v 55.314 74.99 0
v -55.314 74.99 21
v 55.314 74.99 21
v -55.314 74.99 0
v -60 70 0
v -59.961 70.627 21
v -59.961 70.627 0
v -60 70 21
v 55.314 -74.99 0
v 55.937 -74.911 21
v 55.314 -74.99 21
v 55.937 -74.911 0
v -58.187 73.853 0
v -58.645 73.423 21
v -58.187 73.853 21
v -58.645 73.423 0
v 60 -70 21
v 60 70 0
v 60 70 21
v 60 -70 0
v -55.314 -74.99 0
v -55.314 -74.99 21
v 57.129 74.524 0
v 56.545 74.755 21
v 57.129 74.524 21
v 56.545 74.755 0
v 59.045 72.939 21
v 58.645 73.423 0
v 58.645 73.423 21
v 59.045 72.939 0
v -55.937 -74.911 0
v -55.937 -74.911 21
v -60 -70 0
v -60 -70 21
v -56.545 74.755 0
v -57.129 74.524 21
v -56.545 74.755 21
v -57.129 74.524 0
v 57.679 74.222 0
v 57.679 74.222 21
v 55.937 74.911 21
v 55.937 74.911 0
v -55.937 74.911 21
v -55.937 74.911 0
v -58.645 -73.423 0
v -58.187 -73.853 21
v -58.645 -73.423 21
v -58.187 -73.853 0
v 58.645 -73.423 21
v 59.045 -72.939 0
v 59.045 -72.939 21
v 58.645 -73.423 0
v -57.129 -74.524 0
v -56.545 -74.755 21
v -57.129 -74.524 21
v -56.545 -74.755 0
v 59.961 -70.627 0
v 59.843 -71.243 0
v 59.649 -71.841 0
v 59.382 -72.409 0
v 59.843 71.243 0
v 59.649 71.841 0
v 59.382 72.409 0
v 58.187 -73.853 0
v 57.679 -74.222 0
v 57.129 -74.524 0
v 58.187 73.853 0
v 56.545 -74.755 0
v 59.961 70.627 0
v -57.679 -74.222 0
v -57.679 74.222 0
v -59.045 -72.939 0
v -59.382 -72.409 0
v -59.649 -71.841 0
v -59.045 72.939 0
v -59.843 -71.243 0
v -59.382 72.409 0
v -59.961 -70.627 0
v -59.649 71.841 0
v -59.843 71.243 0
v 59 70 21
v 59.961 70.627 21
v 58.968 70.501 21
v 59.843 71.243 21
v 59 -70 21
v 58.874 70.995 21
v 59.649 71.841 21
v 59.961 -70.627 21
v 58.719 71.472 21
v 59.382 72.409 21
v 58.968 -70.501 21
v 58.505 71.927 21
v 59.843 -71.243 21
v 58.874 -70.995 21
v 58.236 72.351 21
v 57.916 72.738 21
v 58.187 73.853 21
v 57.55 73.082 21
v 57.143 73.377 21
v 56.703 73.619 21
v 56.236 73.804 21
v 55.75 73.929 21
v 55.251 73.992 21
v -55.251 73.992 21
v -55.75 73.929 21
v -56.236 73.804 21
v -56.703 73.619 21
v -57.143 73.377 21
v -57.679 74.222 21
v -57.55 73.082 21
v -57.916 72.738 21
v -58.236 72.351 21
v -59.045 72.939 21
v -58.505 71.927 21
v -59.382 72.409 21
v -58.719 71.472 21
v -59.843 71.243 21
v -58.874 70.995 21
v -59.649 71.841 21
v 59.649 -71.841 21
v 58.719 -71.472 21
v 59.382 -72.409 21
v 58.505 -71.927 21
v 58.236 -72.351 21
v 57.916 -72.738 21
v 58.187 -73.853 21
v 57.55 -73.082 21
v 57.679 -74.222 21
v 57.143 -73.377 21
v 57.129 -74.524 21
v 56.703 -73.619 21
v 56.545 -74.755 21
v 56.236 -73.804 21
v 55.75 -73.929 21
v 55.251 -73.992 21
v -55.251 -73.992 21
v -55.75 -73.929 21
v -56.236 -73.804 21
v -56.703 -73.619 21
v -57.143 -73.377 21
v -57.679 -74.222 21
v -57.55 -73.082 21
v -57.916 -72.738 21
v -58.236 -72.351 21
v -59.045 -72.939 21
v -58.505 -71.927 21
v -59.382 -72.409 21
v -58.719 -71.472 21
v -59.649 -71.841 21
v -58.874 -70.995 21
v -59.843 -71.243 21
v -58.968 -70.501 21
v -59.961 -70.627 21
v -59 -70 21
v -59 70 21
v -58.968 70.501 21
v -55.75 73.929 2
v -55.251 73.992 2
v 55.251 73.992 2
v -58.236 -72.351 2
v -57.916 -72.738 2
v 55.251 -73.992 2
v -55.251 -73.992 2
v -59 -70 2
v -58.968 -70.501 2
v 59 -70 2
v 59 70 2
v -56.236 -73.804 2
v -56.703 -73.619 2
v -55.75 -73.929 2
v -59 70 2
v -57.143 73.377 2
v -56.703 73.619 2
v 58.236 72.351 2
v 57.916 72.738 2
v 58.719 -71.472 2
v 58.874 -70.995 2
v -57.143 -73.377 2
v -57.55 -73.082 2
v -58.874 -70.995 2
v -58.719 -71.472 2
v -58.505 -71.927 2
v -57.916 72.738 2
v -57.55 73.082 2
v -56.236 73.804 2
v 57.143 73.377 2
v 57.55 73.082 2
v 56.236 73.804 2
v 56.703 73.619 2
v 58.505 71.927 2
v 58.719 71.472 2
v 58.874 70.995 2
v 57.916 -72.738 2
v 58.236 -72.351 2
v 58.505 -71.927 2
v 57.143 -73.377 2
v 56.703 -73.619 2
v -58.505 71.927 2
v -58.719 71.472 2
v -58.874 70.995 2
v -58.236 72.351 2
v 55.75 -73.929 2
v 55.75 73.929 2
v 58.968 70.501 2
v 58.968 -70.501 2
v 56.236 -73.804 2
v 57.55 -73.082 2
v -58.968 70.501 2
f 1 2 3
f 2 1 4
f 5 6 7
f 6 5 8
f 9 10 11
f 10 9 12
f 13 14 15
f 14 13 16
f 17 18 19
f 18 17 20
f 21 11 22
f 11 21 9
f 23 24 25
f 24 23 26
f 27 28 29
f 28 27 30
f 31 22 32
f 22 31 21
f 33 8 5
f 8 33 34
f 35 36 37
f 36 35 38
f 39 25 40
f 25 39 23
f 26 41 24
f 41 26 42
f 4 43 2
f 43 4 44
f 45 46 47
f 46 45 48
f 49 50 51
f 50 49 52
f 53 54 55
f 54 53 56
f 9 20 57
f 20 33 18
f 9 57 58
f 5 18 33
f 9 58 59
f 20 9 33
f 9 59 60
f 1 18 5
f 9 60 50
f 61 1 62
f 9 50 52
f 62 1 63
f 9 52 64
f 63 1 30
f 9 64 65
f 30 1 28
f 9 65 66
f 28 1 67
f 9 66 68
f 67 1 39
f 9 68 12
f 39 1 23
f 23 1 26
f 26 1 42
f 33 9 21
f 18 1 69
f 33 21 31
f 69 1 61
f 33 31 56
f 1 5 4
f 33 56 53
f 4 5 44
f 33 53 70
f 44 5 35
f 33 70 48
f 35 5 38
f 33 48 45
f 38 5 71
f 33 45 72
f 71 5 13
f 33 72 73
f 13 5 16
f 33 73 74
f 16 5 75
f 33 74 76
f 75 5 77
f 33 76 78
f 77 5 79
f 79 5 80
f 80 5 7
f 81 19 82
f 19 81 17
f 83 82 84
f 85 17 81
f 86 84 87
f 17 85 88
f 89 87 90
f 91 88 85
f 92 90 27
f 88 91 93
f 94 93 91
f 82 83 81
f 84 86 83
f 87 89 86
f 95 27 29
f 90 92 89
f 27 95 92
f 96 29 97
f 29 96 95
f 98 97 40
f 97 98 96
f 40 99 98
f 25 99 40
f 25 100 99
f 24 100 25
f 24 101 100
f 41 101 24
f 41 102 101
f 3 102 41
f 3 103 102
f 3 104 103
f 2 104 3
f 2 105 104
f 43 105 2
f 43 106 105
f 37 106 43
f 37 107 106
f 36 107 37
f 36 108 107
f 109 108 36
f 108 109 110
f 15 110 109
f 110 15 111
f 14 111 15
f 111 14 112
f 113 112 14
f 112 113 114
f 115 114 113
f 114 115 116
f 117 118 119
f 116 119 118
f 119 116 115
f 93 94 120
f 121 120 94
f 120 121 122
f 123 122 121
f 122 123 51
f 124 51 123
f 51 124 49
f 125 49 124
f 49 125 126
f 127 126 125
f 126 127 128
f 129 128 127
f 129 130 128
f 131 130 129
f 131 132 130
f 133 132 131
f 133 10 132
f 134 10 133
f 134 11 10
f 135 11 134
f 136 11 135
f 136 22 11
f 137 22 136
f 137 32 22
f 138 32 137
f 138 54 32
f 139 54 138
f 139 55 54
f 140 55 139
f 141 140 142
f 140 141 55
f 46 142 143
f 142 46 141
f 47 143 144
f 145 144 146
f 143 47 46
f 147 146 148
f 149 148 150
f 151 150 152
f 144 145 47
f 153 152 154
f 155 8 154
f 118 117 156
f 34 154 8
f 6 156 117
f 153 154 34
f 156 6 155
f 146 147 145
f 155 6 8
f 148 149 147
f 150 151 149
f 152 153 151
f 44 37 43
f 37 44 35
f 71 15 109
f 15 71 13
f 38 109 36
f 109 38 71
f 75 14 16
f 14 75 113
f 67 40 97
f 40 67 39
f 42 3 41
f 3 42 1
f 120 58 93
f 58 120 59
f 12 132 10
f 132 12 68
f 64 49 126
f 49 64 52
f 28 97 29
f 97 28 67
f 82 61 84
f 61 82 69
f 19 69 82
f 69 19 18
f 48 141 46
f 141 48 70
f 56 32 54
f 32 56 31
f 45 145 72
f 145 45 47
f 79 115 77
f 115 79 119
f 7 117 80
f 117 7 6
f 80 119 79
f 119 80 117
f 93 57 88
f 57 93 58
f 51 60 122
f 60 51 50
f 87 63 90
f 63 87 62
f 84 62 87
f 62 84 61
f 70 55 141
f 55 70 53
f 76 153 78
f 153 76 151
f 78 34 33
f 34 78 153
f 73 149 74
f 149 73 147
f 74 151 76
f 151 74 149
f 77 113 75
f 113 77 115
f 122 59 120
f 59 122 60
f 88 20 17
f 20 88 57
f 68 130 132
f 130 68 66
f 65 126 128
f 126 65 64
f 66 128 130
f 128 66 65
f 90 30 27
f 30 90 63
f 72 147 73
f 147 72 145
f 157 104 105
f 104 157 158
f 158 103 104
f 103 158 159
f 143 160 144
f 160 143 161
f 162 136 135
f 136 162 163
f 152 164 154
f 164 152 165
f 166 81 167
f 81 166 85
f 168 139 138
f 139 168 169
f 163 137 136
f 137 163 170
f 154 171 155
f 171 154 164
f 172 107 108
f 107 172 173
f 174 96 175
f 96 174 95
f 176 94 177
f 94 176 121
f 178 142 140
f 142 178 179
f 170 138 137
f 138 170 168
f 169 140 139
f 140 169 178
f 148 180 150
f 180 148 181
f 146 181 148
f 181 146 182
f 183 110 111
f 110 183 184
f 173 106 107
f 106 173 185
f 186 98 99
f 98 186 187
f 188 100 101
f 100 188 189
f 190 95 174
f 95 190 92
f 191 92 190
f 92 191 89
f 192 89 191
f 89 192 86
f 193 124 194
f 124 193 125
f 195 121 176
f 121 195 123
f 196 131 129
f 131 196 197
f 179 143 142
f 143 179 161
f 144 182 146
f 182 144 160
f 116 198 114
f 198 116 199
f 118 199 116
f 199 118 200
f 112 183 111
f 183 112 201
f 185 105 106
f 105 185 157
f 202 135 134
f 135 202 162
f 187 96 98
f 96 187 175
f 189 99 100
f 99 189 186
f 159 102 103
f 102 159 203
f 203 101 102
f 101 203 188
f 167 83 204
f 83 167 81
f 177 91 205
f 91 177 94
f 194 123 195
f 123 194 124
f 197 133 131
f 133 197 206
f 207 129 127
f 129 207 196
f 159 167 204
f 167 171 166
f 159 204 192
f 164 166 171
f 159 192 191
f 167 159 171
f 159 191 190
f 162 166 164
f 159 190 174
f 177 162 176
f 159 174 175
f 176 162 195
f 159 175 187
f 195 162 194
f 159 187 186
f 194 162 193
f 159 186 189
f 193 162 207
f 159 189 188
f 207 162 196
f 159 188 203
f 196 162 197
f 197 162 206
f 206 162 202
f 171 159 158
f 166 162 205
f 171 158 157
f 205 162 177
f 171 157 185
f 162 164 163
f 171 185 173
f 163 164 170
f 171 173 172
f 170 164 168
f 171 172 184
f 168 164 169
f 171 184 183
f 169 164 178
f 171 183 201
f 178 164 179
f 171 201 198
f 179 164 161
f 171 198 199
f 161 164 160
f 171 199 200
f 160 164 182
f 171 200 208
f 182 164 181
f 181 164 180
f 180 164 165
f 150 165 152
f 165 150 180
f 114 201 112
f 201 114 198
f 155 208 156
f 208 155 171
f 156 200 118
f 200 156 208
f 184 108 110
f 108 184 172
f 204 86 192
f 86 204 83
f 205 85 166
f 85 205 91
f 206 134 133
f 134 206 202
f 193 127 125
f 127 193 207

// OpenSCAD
$fn = 50;


difference() {
	union() {
		hull() {
			translate(v = [-55.0000000000, 70.0000000000, 0]) {
				cylinder(h = 21, r = 5);
			}
			translate(v = [55.0000000000, 70.0000000000, 0]) {
				cylinder(h = 21, r = 5);
			}
			translate(v = [-55.0000000000, -70.0000000000, 0]) {
				cylinder(h = 21, r = 5);
			}
			translate(v = [55.0000000000, -70.0000000000, 0]) {
				cylinder(h = 21, r = 5);
			}
		}
	}
	union() {
		translate(v = [0, 0, 2]) {
			hull() {
				translate(v = [-55.0000000000, 70.0000000000, 0]) {
					cylinder(h = 19, r = 4);
				}
				translate(v = [55.0000000000, 70.0000000000, 0]) {
					cylinder(h = 19, r = 4);
				}
				translate(v = [-55.0000000000, -70.0000000000, 0]) {
					cylinder(h = 19, r = 4);
				}
				translate(v = [55.0000000000, -70.0000000000, 0]) {
					cylinder(h = 19, r = 4);
				}
			}
		}
	}
}
